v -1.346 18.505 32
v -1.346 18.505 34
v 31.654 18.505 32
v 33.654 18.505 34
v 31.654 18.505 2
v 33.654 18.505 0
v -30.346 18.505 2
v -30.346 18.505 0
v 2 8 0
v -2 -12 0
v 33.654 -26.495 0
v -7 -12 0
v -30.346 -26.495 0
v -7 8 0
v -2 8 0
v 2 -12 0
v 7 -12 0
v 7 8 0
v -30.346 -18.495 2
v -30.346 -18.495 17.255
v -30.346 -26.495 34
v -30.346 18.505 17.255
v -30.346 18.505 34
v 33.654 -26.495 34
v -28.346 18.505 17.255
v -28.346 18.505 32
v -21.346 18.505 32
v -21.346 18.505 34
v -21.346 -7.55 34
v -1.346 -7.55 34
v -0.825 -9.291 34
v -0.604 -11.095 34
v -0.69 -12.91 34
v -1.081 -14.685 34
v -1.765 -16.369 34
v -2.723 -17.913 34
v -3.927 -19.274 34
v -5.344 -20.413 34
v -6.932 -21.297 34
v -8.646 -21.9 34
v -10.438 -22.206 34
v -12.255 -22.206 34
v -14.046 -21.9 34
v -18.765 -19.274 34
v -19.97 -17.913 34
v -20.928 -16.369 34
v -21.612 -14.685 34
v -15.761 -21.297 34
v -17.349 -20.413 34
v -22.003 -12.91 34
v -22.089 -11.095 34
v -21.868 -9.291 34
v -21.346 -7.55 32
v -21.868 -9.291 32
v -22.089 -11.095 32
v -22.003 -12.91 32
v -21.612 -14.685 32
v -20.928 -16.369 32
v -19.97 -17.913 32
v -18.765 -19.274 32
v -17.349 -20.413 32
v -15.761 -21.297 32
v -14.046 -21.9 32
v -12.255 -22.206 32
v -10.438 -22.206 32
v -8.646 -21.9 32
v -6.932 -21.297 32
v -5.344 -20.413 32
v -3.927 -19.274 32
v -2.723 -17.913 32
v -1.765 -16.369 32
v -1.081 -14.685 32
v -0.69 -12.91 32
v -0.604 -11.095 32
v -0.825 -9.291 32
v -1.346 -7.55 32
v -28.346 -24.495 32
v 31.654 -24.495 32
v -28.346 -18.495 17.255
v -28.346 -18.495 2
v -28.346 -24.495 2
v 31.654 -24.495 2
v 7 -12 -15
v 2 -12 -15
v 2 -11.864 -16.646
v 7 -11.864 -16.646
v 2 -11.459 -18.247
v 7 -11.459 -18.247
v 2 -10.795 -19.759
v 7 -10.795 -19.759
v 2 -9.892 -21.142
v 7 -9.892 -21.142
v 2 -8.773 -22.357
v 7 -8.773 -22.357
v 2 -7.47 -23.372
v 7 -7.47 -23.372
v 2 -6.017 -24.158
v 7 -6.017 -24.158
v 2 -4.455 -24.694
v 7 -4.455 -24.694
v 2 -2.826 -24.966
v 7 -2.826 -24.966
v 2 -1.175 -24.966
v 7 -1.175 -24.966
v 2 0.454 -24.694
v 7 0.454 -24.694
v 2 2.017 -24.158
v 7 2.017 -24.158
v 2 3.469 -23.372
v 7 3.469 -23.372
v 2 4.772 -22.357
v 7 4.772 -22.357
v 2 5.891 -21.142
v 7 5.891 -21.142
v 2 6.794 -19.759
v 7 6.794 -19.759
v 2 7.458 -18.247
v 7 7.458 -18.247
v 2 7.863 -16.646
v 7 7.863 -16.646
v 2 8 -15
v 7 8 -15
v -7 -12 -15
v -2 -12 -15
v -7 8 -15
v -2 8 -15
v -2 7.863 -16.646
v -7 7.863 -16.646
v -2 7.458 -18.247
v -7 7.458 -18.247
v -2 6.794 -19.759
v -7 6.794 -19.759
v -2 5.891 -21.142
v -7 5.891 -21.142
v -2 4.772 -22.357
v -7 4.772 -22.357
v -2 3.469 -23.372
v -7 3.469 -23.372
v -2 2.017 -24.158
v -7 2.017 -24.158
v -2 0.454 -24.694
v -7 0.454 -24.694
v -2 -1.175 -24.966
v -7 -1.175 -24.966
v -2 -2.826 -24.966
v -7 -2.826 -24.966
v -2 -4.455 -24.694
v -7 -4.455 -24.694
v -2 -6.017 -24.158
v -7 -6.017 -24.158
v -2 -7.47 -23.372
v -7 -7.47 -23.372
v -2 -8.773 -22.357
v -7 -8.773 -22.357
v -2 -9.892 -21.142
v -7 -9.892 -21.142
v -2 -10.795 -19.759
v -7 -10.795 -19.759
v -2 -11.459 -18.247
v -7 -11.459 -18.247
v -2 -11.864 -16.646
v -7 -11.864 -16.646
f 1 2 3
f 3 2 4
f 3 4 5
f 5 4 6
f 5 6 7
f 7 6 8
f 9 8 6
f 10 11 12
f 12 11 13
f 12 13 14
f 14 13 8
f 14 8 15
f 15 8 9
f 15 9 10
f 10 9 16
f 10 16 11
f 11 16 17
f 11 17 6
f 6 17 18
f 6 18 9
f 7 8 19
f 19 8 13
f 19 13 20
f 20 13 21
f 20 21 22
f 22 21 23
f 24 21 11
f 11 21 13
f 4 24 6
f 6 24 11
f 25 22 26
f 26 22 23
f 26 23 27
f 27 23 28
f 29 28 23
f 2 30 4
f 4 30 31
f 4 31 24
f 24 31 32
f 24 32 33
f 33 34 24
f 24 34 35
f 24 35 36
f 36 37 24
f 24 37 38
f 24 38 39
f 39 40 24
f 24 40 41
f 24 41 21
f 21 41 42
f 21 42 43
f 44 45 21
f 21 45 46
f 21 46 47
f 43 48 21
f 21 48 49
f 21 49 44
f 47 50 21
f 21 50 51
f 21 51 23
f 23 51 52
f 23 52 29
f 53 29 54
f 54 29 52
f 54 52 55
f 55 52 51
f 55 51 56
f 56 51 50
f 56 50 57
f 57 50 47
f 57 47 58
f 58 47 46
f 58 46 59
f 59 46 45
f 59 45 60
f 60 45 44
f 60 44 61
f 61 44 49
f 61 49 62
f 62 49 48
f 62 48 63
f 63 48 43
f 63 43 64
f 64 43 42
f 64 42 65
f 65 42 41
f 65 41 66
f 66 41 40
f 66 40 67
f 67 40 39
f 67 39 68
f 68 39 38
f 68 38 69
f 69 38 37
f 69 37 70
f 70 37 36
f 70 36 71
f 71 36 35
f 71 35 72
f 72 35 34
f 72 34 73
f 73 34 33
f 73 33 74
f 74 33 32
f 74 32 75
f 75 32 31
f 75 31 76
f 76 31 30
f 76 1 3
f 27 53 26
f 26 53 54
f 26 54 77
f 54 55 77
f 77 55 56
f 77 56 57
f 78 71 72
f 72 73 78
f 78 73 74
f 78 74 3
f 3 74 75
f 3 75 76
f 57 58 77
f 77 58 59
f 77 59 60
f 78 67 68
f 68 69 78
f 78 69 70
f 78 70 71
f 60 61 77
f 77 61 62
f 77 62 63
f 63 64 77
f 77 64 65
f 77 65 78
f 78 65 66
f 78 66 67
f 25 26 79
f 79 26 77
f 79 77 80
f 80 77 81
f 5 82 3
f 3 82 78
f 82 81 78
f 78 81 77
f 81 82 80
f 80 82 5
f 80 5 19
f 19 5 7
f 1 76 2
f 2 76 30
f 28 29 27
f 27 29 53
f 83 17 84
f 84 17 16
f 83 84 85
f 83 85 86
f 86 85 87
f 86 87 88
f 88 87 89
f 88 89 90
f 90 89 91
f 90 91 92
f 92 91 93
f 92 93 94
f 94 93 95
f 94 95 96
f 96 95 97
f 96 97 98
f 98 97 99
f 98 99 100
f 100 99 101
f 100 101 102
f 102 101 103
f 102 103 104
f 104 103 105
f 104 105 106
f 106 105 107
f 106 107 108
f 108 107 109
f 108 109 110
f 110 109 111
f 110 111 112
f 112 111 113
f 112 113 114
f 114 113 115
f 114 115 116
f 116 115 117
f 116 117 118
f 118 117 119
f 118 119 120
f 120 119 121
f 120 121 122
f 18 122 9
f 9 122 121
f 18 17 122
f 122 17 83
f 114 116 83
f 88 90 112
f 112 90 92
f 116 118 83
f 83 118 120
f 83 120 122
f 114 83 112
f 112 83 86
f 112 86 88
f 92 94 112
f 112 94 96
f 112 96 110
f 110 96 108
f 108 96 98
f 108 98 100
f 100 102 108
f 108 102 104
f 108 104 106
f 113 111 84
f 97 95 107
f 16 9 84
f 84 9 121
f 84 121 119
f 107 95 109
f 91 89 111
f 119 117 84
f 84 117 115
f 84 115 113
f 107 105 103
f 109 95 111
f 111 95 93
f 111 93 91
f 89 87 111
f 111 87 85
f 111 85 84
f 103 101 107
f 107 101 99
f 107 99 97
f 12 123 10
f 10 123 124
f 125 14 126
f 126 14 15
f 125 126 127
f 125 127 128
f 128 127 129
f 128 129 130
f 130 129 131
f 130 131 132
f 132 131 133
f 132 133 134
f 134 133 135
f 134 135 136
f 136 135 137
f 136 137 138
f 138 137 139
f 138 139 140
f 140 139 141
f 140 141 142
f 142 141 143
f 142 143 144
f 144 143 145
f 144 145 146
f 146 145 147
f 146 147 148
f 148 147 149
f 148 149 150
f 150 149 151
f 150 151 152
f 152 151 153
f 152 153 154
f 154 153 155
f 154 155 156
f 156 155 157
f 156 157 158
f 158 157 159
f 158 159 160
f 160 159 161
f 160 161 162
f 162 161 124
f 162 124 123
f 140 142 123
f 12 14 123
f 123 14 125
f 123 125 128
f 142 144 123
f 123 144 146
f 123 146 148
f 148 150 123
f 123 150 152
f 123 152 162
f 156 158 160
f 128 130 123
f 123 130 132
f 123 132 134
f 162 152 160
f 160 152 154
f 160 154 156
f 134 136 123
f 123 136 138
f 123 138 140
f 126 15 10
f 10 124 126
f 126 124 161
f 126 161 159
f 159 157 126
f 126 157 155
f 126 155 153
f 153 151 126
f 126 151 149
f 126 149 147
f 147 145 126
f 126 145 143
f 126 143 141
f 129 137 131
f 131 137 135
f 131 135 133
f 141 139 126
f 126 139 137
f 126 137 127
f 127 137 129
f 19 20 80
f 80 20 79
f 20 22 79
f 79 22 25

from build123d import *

# Parameters (mm, degrees)
SKETCH1_W           = 64
SKETCH1_H           = 45
BOSS_EXTRUDE1_DEPTH = 34
SKETCH2_R           = 10.75
CUT_EXTRUDE1_DEPTH  = 6
CUT_EXTRUDE2_START  = -2
SKETCH3_W           = 60
SKETCH3_H           = 41
CUT_EXTRUDE2_DEPTH  = 27
SKETCH4_W           = 60
SKETCH4_H           = 30
CUT_EXTRUDE3_DEPTH  = 43
SKETCH5_W           = 20
SKETCH5_H           = 2
CUT_EXTRUDE4_DEPTH  = 27
BOSS_EXTRUDE2_START = 2
BOSS_EXTRUDE2_DEPTH = 5
BOSS_EXTRUDE3_START = -7
BOSS_EXTRUDE3_DEPTH = 5
SKETCH10_W          = 15.255500618
SKETCH10_H          = 37
CUT_EXTRUDE5_DEPTH  = 2


with BuildPart() as part:
    # Sketch1 → Boss-Extrude1 (new body)
    with BuildSketch(Plane.XY):
        with Locations((1.653781513, -3.994957983)):
            Rectangle(SKETCH1_W, SKETCH1_H)
    extrude(amount=BOSS_EXTRUDE1_DEPTH)

    # Sketch2 → Cut-Extrude1 (cut)
    with BuildSketch(Plane.XY.offset(34)):
        with Locations((-11.346218487, -11.494957983)):
            Circle(SKETCH2_R)
    extrude(amount=-CUT_EXTRUDE1_DEPTH, mode=Mode.SUBTRACT)

    # Sketch3 → Cut-Extrude2 (cut)
    with BuildSketch(Plane.XY.offset(34).offset(CUT_EXTRUDE2_START)):
        with Locations((1.653781513, -3.994957983)):
            Rectangle(SKETCH3_W, SKETCH3_H)
    extrude(amount=-CUT_EXTRUDE2_DEPTH, mode=Mode.SUBTRACT)

    # Sketch4 → Cut-Extrude3 (cut)
    with BuildSketch(Plane(origin=(0, 18.505042017, 0), x_dir=(1, 0, 0), z_dir=(0, 1, 0))):
        with Locations((1.653781513, -17)):
            Rectangle(SKETCH4_W, SKETCH4_H)
    extrude(amount=-CUT_EXTRUDE3_DEPTH, mode=Mode.SUBTRACT)

    # Sketch5 → Cut-Extrude4 (cut)
    with BuildSketch(Plane(origin=(0, 18.505042017, 0), x_dir=(1, 0, 0), z_dir=(0, 1, 0))):
        with Locations((-11.346218487, -33)):
            Rectangle(SKETCH5_W, SKETCH5_H)
    extrude(amount=-CUT_EXTRUDE4_DEPTH, mode=Mode.SUBTRACT)

    # Sketch7 → Boss-Extrude2 (add)
    with BuildSketch(Plane(origin=(0, 0, 0), x_dir=(0, 0, -1), z_dir=(1, 0, 0)).offset(BOSS_EXTRUDE2_START)):
        with BuildLine():
            Line((0, 7.999642933), (15, 7.999642933))
            ThreePointArc((15, 7.999642933), (25, -2.000357067), (15, -12.000357067))
            Line((15, -12.000357067), (0, -12.000357067))
            Line((0, -12.000357067), (0, 7.999642933))
        make_face()
    extrude(amount=BOSS_EXTRUDE2_DEPTH)

    # Sketch8 → Boss-Extrude3 (add)
    with BuildSketch(Plane(origin=(0, 0, 0), x_dir=(0, 0, -1), z_dir=(1, 0, 0)).offset(BOSS_EXTRUDE3_START)):
        with BuildLine():
            Line((0, -12.000357067), (0, 7.999642933))
            Line((0, 7.999642933), (15, 7.999642933))
            ThreePointArc((15, 7.999642933), (25, -2.000357067), (15, -12.000357067))
            Line((15, -12.000357067), (0, -12.000357067))
        make_face()
    extrude(amount=BOSS_EXTRUDE3_DEPTH)

    # Sketch10 → Cut-Extrude5 (cut)
    with BuildSketch(Plane.ZY.offset(30.346218487)):
        with Locations((9.627750309, 0.005042017)):
            Rectangle(SKETCH10_W, SKETCH10_H)
    extrude(amount=-CUT_EXTRUDE5_DEPTH, mode=Mode.SUBTRACT)


solid = part.part
